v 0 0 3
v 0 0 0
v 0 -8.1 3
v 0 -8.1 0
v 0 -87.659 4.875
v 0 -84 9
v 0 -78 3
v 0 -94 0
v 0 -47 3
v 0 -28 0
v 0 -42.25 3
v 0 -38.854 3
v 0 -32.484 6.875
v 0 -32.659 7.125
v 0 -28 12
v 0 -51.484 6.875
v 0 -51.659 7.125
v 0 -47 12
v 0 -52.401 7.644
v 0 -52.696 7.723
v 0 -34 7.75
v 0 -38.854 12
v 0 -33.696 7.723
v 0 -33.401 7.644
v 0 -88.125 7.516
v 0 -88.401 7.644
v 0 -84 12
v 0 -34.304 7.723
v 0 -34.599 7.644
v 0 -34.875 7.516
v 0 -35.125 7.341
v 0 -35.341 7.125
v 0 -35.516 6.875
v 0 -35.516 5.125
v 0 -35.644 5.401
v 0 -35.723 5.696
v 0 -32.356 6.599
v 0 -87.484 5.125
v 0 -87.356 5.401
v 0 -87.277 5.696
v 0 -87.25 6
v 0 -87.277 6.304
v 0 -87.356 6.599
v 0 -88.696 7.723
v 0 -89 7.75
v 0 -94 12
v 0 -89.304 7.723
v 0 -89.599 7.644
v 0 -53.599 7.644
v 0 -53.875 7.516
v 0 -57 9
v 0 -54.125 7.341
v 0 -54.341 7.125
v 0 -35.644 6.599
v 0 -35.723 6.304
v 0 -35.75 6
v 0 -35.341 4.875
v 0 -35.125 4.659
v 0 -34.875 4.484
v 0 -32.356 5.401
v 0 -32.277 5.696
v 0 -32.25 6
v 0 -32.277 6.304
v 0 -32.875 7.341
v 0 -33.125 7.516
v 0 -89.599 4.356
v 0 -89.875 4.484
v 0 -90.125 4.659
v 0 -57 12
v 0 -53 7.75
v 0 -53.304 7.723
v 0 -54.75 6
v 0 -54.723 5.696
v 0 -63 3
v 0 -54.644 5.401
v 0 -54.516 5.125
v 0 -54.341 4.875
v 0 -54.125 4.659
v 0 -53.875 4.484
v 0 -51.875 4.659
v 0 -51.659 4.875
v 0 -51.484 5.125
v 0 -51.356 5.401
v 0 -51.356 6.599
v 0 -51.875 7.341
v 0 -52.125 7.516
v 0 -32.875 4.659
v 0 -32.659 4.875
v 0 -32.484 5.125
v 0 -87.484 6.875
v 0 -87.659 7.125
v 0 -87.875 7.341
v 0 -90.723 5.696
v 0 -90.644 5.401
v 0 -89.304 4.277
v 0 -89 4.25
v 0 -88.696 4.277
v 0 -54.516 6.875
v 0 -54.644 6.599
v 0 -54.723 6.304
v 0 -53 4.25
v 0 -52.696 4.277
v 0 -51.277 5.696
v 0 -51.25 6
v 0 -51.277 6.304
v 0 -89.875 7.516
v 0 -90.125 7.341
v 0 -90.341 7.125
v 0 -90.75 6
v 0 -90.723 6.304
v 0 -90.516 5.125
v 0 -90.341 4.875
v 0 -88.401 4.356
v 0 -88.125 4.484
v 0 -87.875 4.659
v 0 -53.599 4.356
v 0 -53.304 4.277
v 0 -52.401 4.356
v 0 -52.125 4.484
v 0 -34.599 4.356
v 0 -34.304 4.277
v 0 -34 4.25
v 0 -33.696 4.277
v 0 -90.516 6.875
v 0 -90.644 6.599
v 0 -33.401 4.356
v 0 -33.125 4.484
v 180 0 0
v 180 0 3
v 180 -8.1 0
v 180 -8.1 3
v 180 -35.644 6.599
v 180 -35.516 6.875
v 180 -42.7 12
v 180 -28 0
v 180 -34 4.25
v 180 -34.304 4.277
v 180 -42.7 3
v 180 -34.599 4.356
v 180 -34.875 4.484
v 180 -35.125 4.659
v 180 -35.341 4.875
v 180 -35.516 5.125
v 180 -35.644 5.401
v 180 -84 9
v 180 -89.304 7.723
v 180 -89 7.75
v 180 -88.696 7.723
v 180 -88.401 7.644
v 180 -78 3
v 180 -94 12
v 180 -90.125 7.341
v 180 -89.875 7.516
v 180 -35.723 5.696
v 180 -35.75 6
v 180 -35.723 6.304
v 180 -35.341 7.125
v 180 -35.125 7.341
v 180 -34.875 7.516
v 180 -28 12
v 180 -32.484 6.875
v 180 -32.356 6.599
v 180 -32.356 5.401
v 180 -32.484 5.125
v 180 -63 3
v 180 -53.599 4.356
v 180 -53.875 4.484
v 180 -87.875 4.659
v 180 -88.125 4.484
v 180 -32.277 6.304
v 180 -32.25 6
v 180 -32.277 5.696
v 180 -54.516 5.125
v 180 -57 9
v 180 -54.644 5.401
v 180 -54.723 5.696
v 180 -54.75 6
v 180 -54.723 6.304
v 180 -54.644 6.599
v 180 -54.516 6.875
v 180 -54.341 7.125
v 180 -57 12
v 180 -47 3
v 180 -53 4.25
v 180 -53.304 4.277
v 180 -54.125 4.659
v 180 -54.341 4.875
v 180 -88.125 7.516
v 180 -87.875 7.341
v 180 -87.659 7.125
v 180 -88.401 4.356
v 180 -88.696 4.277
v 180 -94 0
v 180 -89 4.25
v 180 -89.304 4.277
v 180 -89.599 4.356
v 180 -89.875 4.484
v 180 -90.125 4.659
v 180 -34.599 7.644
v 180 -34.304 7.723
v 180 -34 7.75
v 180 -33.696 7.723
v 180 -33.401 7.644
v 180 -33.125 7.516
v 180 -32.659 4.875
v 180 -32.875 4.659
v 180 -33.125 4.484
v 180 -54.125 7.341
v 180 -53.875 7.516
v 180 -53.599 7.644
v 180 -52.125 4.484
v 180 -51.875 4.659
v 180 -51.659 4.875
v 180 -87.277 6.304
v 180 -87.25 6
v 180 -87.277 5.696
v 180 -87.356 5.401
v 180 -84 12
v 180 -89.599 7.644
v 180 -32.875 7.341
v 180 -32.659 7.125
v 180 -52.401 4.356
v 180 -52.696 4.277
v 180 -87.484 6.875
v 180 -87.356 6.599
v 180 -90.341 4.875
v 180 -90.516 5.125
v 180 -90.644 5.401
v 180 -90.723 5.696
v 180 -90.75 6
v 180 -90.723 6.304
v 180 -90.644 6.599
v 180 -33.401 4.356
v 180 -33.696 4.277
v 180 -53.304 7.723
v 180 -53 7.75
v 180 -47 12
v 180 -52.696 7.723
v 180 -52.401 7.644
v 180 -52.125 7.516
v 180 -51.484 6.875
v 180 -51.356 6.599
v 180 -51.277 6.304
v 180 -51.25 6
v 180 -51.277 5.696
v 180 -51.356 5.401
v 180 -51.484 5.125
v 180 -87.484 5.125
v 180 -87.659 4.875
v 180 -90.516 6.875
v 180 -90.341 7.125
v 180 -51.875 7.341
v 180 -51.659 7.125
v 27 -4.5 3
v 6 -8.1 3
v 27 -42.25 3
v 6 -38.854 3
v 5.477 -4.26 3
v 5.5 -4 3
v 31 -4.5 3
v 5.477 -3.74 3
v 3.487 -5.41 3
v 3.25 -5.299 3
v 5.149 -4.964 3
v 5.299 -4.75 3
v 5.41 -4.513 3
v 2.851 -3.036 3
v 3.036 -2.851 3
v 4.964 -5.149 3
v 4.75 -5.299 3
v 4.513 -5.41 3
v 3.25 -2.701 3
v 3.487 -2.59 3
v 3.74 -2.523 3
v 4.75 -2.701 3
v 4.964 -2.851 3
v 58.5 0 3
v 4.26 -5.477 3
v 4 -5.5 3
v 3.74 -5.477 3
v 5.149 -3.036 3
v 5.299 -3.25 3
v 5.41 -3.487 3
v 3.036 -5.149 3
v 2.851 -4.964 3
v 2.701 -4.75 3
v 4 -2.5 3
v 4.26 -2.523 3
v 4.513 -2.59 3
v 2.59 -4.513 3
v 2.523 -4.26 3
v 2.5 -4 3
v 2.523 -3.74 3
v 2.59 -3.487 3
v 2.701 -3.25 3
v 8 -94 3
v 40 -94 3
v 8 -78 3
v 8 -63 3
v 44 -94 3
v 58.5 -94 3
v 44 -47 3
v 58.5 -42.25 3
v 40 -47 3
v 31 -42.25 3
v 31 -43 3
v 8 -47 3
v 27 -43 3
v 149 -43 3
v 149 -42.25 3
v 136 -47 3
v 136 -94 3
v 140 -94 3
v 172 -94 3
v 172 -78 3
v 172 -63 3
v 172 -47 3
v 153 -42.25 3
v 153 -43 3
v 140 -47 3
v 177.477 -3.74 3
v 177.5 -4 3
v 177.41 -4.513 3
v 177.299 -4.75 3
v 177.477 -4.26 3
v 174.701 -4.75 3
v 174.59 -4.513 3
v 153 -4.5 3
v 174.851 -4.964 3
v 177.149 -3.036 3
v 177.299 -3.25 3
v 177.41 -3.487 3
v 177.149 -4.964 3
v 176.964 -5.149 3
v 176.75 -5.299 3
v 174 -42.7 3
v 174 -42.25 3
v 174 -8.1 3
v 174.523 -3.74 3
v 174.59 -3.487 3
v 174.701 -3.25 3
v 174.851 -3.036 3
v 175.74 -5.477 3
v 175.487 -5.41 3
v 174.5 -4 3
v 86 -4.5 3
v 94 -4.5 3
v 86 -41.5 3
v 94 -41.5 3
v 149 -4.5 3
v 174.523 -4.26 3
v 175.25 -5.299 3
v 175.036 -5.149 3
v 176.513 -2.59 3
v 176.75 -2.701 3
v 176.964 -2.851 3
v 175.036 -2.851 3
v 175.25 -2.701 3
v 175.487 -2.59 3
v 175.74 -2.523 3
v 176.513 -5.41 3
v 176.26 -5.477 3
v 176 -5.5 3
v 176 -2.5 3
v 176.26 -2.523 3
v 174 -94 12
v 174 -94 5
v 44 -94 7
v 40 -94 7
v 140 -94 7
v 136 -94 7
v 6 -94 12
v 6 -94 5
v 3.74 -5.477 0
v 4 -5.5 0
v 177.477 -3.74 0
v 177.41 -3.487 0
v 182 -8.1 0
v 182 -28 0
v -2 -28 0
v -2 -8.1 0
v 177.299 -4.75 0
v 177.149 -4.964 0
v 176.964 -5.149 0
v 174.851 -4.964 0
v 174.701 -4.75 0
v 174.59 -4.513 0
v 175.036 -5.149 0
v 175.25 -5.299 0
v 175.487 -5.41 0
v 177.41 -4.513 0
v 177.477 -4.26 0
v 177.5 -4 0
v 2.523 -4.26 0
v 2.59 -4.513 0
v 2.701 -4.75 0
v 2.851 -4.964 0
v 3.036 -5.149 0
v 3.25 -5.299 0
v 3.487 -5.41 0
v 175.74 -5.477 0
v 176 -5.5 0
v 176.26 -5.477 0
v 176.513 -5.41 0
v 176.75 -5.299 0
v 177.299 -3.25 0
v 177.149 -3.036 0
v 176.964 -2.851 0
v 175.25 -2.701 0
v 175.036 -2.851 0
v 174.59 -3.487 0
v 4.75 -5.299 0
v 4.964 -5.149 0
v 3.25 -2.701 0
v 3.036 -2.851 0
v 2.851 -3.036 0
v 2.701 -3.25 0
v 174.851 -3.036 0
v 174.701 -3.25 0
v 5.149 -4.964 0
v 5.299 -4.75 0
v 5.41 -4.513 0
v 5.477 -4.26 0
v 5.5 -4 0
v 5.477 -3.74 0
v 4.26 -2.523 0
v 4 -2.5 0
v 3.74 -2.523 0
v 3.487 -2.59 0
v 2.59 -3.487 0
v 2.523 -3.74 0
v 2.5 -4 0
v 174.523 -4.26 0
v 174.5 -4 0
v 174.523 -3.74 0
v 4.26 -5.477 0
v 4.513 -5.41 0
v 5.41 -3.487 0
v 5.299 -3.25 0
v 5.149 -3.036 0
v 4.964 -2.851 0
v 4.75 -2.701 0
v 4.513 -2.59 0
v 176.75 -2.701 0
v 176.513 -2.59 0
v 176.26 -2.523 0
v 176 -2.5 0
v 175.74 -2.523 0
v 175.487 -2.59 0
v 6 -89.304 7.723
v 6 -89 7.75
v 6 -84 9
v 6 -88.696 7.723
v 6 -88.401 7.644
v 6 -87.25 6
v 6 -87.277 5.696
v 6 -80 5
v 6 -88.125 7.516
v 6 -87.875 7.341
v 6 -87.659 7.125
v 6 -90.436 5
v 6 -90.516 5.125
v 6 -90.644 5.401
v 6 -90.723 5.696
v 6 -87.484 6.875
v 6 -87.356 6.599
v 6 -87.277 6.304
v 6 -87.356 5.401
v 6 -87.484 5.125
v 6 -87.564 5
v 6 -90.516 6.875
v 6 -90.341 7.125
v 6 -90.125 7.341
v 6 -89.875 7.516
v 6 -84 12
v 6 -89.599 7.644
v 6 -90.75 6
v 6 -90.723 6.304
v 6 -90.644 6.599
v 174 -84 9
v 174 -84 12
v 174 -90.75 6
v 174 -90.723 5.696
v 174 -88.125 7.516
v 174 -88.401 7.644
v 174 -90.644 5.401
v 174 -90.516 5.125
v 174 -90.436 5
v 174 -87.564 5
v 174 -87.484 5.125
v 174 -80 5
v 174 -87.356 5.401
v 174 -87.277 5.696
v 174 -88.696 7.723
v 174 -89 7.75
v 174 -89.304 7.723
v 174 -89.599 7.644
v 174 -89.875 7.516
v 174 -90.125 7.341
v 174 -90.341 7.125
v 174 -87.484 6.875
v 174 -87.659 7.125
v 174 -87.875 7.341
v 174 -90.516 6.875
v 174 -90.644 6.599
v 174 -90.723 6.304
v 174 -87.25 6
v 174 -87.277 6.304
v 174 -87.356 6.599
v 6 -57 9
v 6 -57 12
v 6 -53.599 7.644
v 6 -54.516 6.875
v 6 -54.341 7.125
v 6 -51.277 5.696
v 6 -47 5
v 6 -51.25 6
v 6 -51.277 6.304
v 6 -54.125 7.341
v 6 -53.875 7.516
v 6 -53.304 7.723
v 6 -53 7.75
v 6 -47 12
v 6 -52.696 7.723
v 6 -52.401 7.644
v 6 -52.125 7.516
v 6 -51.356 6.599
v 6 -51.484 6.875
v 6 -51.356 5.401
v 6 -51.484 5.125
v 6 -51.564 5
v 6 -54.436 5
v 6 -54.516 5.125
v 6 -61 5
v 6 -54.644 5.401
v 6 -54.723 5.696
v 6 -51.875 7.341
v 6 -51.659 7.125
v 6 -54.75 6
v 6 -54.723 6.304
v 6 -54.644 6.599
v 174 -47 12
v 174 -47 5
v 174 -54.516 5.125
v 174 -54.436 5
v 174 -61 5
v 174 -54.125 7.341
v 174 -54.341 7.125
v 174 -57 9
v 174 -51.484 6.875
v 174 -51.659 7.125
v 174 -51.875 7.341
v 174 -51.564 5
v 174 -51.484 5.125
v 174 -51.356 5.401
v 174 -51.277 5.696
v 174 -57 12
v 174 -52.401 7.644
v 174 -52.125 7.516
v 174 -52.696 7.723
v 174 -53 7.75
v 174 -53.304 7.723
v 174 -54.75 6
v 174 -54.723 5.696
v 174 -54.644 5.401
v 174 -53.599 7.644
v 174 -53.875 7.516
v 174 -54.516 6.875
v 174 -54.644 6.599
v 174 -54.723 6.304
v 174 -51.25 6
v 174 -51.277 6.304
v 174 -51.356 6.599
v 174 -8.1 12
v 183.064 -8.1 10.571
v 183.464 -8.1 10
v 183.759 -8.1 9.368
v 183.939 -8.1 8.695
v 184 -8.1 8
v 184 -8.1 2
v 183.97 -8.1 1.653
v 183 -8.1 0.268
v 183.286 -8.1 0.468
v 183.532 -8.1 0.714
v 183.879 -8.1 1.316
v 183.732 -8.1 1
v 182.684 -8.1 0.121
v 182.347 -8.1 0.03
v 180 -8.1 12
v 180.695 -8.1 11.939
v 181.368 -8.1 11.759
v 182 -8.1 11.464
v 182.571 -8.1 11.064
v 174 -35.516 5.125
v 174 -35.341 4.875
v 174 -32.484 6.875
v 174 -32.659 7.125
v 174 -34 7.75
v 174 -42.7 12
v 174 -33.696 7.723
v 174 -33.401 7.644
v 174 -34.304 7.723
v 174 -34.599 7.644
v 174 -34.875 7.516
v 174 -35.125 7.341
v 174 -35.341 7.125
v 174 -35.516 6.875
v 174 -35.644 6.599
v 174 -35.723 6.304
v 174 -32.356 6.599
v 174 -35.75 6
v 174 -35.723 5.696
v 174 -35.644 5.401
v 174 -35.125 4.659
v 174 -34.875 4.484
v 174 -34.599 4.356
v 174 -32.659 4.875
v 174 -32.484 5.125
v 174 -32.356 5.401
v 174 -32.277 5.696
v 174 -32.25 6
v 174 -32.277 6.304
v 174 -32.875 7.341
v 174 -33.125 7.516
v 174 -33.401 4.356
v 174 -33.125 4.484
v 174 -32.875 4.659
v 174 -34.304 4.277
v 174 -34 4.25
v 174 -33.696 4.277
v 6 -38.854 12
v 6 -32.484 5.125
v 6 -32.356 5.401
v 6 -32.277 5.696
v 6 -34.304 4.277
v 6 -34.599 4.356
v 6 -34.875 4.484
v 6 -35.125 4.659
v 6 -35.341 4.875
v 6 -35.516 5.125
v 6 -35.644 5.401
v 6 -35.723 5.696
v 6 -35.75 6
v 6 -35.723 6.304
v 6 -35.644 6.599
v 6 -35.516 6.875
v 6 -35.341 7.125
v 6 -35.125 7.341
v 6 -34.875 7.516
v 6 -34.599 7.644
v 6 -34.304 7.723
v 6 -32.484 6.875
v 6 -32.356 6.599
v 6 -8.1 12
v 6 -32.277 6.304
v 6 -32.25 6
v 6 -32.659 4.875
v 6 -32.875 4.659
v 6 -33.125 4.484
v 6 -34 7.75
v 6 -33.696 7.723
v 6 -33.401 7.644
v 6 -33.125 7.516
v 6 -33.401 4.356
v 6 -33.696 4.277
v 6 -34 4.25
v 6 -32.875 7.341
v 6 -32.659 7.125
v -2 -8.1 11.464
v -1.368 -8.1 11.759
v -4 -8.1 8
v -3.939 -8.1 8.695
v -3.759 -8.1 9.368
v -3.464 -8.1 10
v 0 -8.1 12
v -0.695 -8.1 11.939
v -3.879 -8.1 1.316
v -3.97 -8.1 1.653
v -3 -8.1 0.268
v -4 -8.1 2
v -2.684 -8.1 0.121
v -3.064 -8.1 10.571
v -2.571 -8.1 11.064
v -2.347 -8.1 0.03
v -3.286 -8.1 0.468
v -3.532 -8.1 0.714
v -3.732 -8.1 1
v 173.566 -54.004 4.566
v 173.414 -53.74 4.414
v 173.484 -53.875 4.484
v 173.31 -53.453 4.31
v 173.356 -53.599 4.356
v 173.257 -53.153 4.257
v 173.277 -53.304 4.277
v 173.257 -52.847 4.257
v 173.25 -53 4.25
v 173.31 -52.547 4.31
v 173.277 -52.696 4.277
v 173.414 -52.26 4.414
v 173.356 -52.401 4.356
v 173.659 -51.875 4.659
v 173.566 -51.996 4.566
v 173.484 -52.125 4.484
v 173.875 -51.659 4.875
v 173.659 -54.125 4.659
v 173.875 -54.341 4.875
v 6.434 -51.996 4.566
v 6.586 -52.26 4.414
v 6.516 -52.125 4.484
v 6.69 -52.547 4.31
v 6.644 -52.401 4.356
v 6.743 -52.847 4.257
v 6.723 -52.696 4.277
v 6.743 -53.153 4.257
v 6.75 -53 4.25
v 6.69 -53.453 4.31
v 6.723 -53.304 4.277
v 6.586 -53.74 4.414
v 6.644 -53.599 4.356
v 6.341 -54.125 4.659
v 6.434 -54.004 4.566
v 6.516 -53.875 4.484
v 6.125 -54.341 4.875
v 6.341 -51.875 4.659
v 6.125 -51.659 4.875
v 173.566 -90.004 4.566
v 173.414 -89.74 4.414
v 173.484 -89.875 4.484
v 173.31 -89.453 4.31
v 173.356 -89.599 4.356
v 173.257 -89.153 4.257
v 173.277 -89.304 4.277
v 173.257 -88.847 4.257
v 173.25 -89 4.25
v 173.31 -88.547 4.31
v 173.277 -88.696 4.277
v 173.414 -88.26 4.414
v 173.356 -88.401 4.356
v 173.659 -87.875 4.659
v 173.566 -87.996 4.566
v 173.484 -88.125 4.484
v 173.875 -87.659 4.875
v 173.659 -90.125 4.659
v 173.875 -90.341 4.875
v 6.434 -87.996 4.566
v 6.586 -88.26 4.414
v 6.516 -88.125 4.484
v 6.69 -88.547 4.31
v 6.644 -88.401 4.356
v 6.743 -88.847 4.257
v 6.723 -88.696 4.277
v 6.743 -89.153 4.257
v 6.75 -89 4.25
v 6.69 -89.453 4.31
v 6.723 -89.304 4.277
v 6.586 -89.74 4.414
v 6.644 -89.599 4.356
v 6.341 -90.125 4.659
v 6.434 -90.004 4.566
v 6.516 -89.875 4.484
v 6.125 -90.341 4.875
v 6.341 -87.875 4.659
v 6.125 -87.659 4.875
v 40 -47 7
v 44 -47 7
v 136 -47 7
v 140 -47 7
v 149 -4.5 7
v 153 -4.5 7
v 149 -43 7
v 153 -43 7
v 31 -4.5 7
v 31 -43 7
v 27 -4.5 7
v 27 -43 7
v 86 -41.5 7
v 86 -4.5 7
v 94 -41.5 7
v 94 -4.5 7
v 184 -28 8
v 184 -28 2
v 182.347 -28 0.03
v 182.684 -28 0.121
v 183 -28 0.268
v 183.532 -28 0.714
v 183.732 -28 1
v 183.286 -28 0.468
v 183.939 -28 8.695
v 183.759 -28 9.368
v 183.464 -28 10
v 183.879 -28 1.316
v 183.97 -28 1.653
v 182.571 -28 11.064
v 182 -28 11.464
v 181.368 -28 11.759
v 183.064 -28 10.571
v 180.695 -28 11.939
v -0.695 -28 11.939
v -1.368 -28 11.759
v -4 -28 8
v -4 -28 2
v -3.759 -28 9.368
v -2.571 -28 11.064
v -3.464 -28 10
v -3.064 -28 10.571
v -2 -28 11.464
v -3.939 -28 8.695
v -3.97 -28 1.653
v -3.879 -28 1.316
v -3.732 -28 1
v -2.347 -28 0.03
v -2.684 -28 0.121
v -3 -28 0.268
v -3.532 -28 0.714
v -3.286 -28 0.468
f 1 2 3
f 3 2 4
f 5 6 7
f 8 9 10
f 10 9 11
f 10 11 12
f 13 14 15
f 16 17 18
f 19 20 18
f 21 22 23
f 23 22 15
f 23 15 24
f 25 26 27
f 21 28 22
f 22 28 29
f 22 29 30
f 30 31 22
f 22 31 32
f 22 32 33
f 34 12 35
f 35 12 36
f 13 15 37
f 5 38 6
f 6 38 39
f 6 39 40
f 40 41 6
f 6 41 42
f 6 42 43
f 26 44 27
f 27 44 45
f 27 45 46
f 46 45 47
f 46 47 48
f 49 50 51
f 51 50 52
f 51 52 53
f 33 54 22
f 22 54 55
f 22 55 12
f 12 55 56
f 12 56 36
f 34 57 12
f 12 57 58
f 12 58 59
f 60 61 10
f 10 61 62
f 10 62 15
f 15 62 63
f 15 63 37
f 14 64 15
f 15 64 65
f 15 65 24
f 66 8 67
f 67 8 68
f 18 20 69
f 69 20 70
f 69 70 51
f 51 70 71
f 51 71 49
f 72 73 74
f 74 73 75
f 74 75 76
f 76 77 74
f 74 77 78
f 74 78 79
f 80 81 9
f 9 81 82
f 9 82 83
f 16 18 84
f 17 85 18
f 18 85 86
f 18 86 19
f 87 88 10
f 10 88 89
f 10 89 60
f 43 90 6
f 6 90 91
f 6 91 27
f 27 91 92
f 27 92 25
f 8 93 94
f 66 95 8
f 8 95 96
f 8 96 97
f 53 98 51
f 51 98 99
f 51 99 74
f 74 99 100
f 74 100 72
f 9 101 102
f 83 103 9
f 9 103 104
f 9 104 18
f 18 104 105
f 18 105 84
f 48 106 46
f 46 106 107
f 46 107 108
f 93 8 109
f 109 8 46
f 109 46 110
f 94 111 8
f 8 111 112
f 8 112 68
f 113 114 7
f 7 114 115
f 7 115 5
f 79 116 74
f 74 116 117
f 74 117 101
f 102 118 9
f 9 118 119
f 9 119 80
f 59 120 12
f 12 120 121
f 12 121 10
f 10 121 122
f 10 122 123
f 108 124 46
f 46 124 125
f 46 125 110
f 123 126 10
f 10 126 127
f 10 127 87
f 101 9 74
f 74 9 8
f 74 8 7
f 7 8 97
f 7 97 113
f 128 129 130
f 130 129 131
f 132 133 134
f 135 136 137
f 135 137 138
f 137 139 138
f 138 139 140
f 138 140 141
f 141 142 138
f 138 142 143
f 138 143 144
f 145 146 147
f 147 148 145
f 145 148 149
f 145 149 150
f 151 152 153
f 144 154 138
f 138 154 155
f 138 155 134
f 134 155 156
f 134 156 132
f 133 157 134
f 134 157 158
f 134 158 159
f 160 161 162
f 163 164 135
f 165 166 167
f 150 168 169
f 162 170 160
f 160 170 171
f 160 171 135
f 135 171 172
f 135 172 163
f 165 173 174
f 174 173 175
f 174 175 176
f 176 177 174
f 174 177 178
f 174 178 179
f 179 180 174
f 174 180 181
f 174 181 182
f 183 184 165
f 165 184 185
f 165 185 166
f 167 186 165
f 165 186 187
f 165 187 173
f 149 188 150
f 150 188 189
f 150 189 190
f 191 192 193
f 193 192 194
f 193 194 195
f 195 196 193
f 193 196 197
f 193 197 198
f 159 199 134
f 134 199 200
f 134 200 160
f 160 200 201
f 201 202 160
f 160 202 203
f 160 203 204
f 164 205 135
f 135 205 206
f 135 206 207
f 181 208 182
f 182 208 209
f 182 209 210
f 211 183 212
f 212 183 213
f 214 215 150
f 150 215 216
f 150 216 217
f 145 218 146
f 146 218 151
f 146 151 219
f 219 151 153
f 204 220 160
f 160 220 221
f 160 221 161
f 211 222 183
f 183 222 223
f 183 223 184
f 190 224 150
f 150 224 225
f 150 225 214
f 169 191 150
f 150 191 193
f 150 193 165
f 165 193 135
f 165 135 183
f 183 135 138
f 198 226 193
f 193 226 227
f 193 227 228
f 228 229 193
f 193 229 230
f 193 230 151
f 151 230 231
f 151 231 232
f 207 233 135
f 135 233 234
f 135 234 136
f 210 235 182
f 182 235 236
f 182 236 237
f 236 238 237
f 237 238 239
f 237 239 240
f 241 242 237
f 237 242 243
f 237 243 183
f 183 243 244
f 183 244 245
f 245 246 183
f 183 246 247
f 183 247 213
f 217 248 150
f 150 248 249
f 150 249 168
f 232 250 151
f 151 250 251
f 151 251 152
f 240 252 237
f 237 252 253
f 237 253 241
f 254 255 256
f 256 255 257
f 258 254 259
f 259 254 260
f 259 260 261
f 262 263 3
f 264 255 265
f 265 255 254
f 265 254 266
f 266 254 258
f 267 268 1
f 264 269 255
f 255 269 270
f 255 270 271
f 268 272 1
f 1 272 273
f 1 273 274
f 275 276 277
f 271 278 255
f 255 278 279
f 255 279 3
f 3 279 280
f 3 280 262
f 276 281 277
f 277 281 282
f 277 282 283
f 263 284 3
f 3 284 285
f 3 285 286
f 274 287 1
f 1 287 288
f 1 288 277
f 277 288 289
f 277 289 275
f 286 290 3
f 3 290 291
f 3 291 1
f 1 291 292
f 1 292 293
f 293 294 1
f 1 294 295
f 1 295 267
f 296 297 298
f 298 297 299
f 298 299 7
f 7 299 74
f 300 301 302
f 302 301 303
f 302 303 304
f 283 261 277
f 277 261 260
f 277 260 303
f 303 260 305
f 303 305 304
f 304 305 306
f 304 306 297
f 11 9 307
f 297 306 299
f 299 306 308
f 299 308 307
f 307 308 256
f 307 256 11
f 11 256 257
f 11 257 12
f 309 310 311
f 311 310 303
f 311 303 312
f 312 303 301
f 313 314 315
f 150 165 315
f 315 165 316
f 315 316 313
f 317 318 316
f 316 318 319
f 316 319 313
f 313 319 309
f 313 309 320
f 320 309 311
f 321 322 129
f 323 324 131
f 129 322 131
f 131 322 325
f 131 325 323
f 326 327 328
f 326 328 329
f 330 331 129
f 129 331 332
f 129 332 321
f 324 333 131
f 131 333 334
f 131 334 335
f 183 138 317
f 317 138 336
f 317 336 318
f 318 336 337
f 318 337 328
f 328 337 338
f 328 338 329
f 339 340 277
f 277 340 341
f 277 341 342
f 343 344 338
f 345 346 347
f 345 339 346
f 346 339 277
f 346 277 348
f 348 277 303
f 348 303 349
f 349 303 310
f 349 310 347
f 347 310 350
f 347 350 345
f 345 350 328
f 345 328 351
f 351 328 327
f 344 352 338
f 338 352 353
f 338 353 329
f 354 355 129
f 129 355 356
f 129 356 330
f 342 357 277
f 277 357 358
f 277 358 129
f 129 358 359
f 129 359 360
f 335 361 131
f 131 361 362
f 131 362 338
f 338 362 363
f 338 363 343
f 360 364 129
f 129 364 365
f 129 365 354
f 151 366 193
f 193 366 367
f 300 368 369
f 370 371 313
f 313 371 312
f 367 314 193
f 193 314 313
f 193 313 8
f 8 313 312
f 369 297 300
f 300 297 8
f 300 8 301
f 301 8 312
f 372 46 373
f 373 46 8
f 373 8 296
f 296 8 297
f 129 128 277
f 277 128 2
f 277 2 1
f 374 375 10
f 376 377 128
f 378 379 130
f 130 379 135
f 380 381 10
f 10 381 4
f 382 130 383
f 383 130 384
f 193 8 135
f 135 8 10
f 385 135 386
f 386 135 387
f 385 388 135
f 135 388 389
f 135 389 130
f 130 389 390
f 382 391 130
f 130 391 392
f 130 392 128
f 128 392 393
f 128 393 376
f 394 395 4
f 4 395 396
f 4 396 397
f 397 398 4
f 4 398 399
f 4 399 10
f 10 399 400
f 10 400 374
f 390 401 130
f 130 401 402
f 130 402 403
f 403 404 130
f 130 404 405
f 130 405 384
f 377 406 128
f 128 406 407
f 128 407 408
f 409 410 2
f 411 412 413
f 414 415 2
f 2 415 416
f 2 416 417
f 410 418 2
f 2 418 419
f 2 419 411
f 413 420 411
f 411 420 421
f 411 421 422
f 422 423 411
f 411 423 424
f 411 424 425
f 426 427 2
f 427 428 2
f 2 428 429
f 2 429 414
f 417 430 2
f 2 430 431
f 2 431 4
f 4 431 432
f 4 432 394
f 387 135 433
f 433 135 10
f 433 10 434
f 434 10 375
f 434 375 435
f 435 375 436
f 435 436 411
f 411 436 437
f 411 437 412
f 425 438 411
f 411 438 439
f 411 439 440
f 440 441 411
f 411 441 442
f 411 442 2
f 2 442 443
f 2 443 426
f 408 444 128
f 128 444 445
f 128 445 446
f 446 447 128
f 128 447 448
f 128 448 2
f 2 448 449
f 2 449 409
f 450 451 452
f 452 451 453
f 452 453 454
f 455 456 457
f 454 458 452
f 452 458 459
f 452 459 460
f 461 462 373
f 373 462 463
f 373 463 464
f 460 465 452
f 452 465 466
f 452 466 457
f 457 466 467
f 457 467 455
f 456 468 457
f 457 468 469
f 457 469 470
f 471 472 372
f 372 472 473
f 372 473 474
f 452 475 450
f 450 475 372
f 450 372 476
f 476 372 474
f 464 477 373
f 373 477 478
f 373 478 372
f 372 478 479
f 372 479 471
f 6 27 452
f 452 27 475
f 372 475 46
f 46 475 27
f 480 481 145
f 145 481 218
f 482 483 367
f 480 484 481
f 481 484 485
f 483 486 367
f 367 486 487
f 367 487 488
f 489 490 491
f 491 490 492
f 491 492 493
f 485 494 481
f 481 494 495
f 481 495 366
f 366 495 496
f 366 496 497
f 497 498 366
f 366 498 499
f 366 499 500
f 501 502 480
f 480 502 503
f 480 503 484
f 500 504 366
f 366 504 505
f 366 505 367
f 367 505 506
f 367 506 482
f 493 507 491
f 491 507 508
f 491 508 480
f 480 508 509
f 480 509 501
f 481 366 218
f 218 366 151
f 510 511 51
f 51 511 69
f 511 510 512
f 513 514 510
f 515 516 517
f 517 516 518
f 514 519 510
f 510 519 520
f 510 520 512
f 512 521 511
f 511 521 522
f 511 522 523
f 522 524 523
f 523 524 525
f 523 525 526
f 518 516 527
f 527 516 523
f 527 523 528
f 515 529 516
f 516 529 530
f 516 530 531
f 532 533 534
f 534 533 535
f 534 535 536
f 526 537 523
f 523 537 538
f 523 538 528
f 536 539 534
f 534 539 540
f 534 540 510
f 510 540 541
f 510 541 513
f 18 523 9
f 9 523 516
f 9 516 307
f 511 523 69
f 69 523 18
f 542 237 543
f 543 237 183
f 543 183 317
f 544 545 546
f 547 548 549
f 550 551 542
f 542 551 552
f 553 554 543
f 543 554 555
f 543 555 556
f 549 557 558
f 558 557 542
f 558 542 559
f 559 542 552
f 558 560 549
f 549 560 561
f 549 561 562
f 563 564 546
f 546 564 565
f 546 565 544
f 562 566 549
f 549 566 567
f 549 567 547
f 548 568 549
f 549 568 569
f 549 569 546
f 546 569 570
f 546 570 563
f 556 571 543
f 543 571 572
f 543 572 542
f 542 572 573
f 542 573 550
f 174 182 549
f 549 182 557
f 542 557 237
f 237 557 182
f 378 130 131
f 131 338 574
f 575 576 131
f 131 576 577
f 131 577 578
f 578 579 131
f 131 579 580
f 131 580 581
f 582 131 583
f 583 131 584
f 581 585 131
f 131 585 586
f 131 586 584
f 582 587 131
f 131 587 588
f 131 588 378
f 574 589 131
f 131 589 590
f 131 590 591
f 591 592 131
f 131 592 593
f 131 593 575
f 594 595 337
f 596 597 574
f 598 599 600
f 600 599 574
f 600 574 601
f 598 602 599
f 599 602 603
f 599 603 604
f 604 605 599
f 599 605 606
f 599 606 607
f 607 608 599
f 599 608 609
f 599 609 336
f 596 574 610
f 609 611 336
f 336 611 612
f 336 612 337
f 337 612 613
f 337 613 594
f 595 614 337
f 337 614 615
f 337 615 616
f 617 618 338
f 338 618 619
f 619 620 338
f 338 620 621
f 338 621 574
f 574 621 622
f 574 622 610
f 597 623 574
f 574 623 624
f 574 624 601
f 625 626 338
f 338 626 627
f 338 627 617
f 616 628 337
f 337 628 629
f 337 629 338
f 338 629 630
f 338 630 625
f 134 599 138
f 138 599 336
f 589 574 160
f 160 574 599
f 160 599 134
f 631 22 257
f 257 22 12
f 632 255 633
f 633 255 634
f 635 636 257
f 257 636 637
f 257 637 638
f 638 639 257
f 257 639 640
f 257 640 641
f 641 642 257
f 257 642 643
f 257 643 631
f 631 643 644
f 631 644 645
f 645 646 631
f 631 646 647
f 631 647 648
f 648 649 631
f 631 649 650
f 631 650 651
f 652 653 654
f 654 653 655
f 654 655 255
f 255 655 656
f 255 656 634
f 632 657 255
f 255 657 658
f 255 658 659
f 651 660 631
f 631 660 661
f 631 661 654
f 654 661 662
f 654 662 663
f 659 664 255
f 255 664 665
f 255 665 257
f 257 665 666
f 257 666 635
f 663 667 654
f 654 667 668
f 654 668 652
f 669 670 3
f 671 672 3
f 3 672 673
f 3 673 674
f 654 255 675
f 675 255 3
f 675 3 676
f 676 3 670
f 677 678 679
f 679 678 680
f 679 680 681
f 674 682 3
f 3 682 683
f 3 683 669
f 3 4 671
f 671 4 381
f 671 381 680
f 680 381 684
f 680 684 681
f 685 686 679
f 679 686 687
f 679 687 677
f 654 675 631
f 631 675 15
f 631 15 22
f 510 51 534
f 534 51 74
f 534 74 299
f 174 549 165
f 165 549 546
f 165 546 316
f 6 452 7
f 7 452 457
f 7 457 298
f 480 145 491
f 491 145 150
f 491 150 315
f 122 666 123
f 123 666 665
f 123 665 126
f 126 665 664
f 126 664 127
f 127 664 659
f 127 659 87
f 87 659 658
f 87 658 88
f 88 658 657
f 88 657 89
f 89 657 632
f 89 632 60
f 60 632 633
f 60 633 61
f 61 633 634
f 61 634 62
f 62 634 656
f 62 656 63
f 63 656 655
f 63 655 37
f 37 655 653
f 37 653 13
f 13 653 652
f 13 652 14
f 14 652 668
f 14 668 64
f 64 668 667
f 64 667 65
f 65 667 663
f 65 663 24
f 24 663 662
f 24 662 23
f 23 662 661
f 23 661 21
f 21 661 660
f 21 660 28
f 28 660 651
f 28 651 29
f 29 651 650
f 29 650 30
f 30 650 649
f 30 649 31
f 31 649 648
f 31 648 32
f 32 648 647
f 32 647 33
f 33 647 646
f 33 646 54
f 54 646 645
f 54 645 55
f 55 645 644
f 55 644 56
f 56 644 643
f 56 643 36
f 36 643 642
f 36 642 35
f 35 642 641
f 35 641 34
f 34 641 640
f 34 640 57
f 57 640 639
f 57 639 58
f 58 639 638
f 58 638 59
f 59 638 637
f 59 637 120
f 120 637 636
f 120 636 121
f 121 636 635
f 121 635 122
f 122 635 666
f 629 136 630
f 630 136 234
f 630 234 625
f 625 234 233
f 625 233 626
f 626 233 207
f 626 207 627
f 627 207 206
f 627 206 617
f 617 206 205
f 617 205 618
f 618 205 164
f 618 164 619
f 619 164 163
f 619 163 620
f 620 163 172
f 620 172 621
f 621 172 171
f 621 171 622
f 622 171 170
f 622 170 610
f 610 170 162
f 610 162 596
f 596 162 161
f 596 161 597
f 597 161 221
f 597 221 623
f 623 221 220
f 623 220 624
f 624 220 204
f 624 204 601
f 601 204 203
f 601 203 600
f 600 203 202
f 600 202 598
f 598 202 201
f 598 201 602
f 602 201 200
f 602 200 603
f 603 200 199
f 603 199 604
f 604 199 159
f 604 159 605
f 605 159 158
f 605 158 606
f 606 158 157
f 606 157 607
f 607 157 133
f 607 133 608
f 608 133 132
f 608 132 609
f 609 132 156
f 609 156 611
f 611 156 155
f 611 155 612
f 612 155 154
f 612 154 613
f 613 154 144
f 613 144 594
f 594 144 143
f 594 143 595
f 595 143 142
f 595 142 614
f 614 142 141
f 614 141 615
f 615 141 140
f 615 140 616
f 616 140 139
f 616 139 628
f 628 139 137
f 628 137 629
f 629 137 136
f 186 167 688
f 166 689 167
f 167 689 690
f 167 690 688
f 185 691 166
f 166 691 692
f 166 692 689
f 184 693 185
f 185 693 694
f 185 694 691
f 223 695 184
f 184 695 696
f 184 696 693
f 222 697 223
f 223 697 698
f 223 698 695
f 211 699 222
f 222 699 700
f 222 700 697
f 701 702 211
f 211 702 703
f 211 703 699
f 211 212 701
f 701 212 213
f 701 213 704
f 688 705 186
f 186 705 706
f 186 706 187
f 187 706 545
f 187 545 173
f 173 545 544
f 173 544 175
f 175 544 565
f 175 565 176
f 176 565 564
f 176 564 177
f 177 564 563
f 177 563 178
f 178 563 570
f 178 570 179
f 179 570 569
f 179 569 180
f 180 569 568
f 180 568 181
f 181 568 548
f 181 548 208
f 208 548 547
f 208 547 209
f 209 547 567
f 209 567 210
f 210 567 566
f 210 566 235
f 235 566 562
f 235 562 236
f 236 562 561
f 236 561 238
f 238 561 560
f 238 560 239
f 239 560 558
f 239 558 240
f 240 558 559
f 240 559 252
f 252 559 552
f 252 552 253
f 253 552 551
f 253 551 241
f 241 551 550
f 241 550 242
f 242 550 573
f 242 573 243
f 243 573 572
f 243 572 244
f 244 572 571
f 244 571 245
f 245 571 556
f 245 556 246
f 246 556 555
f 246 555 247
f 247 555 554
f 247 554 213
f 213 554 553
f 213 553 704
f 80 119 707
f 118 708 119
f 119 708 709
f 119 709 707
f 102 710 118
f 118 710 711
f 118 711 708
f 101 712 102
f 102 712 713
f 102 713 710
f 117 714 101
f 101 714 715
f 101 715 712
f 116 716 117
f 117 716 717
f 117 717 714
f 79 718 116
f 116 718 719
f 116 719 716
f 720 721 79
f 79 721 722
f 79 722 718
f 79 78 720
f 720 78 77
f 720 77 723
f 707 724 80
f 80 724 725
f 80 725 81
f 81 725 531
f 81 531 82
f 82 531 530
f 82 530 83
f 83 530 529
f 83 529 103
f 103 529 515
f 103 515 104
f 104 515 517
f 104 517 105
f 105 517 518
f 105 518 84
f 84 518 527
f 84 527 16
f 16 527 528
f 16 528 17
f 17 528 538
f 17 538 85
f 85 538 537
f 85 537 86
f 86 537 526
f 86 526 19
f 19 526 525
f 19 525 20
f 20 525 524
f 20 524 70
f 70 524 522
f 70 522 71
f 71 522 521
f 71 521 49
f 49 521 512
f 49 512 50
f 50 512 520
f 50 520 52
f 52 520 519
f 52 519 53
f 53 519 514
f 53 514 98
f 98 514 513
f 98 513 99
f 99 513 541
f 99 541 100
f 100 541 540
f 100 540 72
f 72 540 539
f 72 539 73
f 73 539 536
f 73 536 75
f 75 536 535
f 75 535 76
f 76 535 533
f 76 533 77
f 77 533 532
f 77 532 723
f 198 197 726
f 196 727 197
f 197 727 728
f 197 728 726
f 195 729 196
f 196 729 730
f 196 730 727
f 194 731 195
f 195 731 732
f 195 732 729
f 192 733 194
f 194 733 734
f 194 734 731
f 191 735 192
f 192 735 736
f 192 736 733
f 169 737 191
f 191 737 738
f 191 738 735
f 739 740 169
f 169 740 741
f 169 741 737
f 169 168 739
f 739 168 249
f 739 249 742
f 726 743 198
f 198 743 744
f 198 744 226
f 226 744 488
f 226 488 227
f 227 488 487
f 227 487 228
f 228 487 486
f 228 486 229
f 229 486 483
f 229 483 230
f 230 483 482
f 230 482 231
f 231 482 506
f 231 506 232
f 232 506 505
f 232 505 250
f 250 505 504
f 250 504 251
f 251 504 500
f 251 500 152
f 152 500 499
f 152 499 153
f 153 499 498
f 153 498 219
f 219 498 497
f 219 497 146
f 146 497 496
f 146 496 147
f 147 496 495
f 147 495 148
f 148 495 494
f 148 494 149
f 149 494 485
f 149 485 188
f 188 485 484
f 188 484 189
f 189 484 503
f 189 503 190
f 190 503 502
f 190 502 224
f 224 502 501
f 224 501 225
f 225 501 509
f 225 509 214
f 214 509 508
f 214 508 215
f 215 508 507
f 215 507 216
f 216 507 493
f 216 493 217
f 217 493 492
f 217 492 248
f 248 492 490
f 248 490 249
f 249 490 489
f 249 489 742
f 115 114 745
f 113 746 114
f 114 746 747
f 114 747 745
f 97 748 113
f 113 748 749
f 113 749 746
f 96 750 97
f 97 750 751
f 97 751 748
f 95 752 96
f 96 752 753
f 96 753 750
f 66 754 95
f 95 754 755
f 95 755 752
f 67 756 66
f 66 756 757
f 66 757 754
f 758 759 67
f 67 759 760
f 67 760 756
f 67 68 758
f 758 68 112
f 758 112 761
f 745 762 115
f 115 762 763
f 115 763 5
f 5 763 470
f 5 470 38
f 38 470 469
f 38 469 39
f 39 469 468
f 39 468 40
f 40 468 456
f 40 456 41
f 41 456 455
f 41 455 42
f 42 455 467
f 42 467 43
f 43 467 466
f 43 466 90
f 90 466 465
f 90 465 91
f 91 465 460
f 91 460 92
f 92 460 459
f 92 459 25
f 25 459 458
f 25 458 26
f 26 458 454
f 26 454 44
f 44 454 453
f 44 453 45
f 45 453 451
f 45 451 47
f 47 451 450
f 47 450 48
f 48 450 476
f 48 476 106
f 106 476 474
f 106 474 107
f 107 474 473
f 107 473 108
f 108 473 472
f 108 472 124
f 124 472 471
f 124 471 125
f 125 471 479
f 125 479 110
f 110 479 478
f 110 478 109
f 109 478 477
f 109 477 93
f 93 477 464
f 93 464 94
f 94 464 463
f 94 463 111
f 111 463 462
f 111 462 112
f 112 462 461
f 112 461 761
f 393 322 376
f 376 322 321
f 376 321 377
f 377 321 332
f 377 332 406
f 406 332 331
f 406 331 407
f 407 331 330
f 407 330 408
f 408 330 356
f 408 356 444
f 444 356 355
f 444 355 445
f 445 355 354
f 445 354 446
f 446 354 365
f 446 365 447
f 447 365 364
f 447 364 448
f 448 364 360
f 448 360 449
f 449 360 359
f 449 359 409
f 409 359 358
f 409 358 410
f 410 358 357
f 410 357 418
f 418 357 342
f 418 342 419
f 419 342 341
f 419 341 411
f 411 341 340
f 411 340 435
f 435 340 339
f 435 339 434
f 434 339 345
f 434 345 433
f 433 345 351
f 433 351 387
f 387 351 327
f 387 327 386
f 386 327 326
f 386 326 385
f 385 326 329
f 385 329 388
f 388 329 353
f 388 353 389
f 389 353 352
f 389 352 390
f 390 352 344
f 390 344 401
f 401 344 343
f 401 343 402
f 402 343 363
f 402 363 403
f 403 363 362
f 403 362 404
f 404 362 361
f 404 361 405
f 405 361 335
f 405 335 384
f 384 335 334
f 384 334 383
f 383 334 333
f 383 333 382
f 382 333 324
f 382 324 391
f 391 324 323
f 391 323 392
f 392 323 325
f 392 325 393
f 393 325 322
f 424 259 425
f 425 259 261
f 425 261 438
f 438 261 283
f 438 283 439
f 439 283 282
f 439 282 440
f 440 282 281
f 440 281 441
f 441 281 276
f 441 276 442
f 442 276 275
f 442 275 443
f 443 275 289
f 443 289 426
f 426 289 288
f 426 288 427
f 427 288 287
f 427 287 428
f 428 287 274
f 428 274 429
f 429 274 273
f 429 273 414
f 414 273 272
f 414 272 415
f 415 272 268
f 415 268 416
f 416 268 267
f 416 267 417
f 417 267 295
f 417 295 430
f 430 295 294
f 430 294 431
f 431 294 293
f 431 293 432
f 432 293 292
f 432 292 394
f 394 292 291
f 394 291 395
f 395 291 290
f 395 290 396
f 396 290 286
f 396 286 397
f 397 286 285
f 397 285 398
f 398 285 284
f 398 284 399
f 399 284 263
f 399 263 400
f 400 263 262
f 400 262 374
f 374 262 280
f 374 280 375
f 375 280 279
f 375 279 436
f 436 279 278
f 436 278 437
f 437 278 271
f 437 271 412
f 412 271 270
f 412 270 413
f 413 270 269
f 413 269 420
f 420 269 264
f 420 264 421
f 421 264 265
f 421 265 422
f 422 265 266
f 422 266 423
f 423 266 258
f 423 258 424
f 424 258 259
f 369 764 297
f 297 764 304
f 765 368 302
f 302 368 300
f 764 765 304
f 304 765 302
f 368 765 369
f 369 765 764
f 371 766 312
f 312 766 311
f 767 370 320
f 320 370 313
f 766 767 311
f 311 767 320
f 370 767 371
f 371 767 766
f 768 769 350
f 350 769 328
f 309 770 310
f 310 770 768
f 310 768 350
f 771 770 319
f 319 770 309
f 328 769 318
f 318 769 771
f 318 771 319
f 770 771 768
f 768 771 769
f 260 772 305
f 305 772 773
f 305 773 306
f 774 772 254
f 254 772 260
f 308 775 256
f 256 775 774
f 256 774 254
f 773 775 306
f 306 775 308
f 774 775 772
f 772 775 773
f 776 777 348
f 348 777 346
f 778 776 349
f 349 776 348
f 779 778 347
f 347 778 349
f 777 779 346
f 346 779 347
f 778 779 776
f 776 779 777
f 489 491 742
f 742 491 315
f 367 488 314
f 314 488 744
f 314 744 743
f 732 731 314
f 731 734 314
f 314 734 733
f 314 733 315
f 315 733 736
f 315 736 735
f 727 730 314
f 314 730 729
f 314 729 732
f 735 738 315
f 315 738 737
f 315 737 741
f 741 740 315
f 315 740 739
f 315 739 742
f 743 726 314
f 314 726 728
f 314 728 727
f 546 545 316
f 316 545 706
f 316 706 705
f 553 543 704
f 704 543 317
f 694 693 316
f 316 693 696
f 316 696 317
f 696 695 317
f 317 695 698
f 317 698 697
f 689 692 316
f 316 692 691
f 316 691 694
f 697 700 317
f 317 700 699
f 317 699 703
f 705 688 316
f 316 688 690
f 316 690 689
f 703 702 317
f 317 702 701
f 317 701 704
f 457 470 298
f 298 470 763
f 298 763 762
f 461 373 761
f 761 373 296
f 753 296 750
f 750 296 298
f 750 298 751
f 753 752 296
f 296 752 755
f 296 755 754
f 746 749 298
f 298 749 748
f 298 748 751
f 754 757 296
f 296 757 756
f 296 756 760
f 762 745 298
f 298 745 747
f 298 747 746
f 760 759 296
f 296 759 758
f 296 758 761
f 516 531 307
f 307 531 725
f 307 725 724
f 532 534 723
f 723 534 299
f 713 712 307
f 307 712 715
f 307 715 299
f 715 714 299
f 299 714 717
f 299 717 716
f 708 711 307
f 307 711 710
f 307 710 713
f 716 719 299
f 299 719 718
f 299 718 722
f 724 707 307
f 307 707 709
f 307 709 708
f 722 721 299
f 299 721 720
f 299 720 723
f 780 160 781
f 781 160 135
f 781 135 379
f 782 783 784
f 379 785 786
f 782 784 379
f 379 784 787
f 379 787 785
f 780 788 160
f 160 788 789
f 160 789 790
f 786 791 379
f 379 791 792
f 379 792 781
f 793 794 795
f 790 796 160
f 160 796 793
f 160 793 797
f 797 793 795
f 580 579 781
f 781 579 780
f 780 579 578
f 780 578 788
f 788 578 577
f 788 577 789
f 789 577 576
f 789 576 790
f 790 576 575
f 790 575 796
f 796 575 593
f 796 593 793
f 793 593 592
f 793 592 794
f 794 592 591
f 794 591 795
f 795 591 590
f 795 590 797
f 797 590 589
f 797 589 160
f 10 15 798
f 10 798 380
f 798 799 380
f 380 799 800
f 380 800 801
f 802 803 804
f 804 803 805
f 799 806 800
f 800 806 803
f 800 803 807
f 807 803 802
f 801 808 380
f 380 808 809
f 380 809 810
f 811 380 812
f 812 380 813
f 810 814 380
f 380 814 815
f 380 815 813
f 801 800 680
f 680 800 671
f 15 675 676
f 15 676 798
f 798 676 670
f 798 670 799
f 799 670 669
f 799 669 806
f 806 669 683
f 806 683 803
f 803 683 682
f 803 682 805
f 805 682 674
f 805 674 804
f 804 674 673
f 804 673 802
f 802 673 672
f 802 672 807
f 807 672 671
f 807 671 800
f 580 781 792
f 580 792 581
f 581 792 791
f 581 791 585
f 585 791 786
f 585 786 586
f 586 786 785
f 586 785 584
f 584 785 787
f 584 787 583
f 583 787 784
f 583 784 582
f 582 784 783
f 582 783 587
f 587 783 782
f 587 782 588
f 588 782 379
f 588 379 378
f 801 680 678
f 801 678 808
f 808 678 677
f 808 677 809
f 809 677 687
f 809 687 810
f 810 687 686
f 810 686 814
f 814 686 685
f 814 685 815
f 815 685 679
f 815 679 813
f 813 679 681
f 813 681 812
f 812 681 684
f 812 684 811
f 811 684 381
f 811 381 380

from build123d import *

# Parameters (mm, degrees)
SKETCH_1_W          = 180
SKETCH_1_H          = 94
EXTRUDE_1_DEPTH     = 3
SKETCH_2_W          = 6
SKETCH_2_H          = 10
SKETCH_2_H_2        = 34.6
SKETCH_2_H_3        = 30.754035876
EXTRUDE_2_DEPTH     = 9
CHAMFER_2_SIZE      = 6
CHAMFER_1_SIZE      = 6
SKETCH_3_R          = 1.75
CUT_EXTRUDE_1_DEPTH = 204.420746238
SKETCH_4_R          = 1.5
CUT_EXTRUDE_2_DEPTH = 204.265835791
SKETCH_5_W          = 4
SKETCH_5_H          = 47
SKETCH_5_H_2        = 38.5
SKETCH_5_W_2        = 8
SKETCH_5_H_3        = 37
EXTRUDE_3_DEPTH     = 4
CHAMFER_3_SIZE      = 2
SKETCH_6_W          = 12
SKETCH_6_H          = 19.9
EXTRUDE_4_DEPTH     = 4
FILLET_1_R          = 4
SKETCH_7_W          = 12
SKETCH_7_H          = 19.9
EXTRUDE_5_DEPTH     = 4
FILLET_2_R          = 4
FILLET_3_R          = 2


with BuildPart() as part:
    # Эскиз1 → Бобышка-Вытянуть1 (new body)
    with BuildSketch(Plane.XY):
        with Locations((90, -47)):
            Rectangle(SKETCH_1_W, SKETCH_1_H)
    extrude(amount=EXTRUDE_1_DEPTH)

    # Эскиз2 → Бобышка-Вытянуть2 (add)
    with BuildSketch(Plane.XY.offset(3)):
        with Locations((3, -89)):
            Rectangle(SKETCH_2_W, SKETCH_2_H)
        with Locations((177, -89)):
            Rectangle(SKETCH_2_W, SKETCH_2_H)
        with Locations((3, -52)):
            Rectangle(SKETCH_2_W, SKETCH_2_H)
        with Locations((177, -52)):
            Rectangle(SKETCH_2_W, SKETCH_2_H)
        with Locations((177, -25.4)):
            Rectangle(SKETCH_2_W, SKETCH_2_H_2)
        with Locations((3, -23.477017938)):
            Rectangle(SKETCH_2_W, SKETCH_2_H_3)
    extrude(amount=EXTRUDE_2_DEPTH)

    # Фаска2
    chamfer_2_edges = [part.edges().sort_by_distance(p)[0] for p in [
        (3, -57, 3),
        (177, -57, 3),
    ]]
    chamfer(chamfer_2_edges, length=CHAMFER_2_SIZE)

    # Фаска1
    chamfer_1_edges = [part.edges().sort_by_distance(p)[0] for p in [
        (3, -84, 3),
        (177, -84, 3),
    ]]
    chamfer(chamfer_1_edges, length=CHAMFER_1_SIZE)

    # Эскиз3 → Вырез-Вытянуть1 (cut, through all)
    with BuildSketch(Plane(origin=(180, 0, 0), x_dir=(0, 0, -1), z_dir=(1, 0, 0))):
        with Locations((-6, -89)):
            Circle(SKETCH_3_R)
        with Locations((-6, -53)):
            Circle(SKETCH_3_R)
        with Locations((-6, -34)):
            Circle(SKETCH_3_R)
    extrude(amount=-CUT_EXTRUDE_1_DEPTH, mode=Mode.SUBTRACT)

    # Эскиз4 → Вырез-Вытянуть2 (cut, through all)
    with BuildSketch(Plane.XY.offset(3)):
        with Locations((4, -4)):
            Circle(SKETCH_4_R)
        with Locations((176, -4)):
            Circle(SKETCH_4_R)
    extrude(amount=-CUT_EXTRUDE_2_DEPTH, mode=Mode.SUBTRACT)

    # Эскиз5 → Бобышка-Вытянуть3 (add)
    with BuildSketch(Plane.XY.offset(3)):
        with Locations((42, -70.5)):
            Rectangle(SKETCH_5_W, SKETCH_5_H)
        with Locations((138, -70.5)):
            Rectangle(SKETCH_5_W, SKETCH_5_H)
        with Locations((29, -23.75)):
            Rectangle(SKETCH_5_W, SKETCH_5_H_2)
        with Locations((151, -23.75)):
            Rectangle(SKETCH_5_W, SKETCH_5_H_2)
        with Locations((90, -23)):
            Rectangle(SKETCH_5_W_2, SKETCH_5_H_3)
    extrude(amount=EXTRUDE_3_DEPTH)

    # Фаска3
    # the kernel refuses this chamfer: 2 mm, written as the material it adds along each edge
    with BuildSketch(Plane(origin=(6, -72.856634024, 3), x_dir=(0.9996219169112968, 0, -0.02749587661058627), z_dir=(0, -1, 0))) as chamfer_3_piece_1_section:
        Polygon((CHAMFER_3_SIZE * 0.999621916911, CHAMFER_3_SIZE * 0.0274958766106), (-CHAMFER_3_SIZE * 0.0274958766106, CHAMFER_3_SIZE * 0.999621916911), (0, 0), align=None)
    chamfer_3_piece_1 = extrude(amount=21.143365976, mode=Mode.PRIVATE)
    chamfer_3_piece_1 = split(chamfer_3_piece_1, bisect_by=Plane(origin=(6.680922071, -82.46162584, 7.46162584), z_dir=(0, -0.7071067811865476, -0.7071067811865476)), keep=Keep.TOP, mode=Mode.PRIVATE)
    chamfer_3_piece_1 = chamfer_3_piece_1 - Plane(origin=(6.680922071, -89, 6), x_dir=(0, 0, -1), z_dir=(1, 0, 0)) * Cylinder(1.75, 51, mode=Mode.PRIVATE)
    add(chamfer_3_piece_1)
    with BuildSketch(Plane(origin=(174, -94, 3), x_dir=(-0.9996219169112968, 0, -0.02749587661058639), z_dir=(0, 1, 0))) as chamfer_3_piece_2_section:
        Polygon((CHAMFER_3_SIZE * 0.999621916911, CHAMFER_3_SIZE * 0.0274958766106), (-CHAMFER_3_SIZE * 0.0274958766106, CHAMFER_3_SIZE * 0.999621916911), (0, 0), align=None)
    chamfer_3_piece_2 = extrude(amount=21.143365976, mode=Mode.PRIVATE)
    chamfer_3_piece_2 = split(chamfer_3_piece_2, bisect_by=Plane(origin=(173.319077929, -82.46162584, 7.46162584), z_dir=(0, -0.7071067811865476, -0.7071067811865476)), keep=Keep.TOP, mode=Mode.PRIVATE)
    chamfer_3_piece_2 = chamfer_3_piece_2 - Plane(origin=(173.319077929, -89, 6), x_dir=(0, 0, -1), z_dir=(1, 0, 0)) * Cylinder(1.75, 51, mode=Mode.PRIVATE)
    add(chamfer_3_piece_2)
    with BuildSketch(Plane(origin=(6, -47, 3), x_dir=(0.9996219169112968, 0, -0.02749587661058627), z_dir=(0, -1, 0))) as chamfer_3_piece_3_section:
        Polygon((CHAMFER_3_SIZE * 0.999621916911, CHAMFER_3_SIZE * 0.0274958766106), (-CHAMFER_3_SIZE * 0.0274958766106, CHAMFER_3_SIZE * 0.999621916911), (0, 0), align=None)
    chamfer_3_piece_3 = extrude(amount=21.143365976, mode=Mode.PRIVATE)
    chamfer_3_piece_3 = split(chamfer_3_piece_3, bisect_by=Plane(origin=(6.680922071, -58.530709151, 7.469290849), z_dir=(0, 0.7071067811865476, -0.7071067811865476)), keep=Keep.TOP, mode=Mode.PRIVATE)
    chamfer_3_piece_3 = chamfer_3_piece_3 - Plane(origin=(6.680922071, -53, 6), x_dir=(0, 0, -1), z_dir=(1, 0, 0)) * Cylinder(1.75, 51, mode=Mode.PRIVATE)
    add(chamfer_3_piece_3)
    with BuildSketch(Plane(origin=(174, -68.143365976, 3), x_dir=(-0.9996219169112968, 0, -0.02749587661058639), z_dir=(0, 1, 0))) as chamfer_3_piece_4_section:
        Polygon((CHAMFER_3_SIZE * 0.999621916911, CHAMFER_3_SIZE * 0.0274958766106), (-CHAMFER_3_SIZE * 0.0274958766106, CHAMFER_3_SIZE * 0.999621916911), (0, 0), align=None)
    chamfer_3_piece_4 = extrude(amount=21.143365976, mode=Mode.PRIVATE)
    chamfer_3_piece_4 = split(chamfer_3_piece_4, bisect_by=Plane(origin=(173.319077929, -58.530709151, 7.469290849), z_dir=(0, 0.7071067811865476, -0.7071067811865476)), keep=Keep.TOP, mode=Mode.PRIVATE)
    chamfer_3_piece_4 = chamfer_3_piece_4 - Plane(origin=(173.319077929, -53, 6), x_dir=(0, 0, -1), z_dir=(1, 0, 0)) * Cylinder(1.75, 51, mode=Mode.PRIVATE)
    add(chamfer_3_piece_4)

    # Эскиз6 → Бобышка-Вытянуть4 (add)
    with BuildSketch(Plane(origin=(180, 0, 0), x_dir=(0, 0, -1), z_dir=(1, 0, 0))):
        with Locations((-6, -18.05)):
            Rectangle(SKETCH_6_W, SKETCH_6_H)
    extrude(amount=EXTRUDE_4_DEPTH)

    # Скругление1
    fillet_1_edges = [part.edges().sort_by_distance(p)[0] for p in [
        (184, -18.05, 12),
    ]]
    fillet(fillet_1_edges, radius=FILLET_1_R)

    # Эскиз7 → Бобышка-Вытянуть5 (add)
    with BuildSketch(Plane.ZY):
        with Locations((6, -18.05)):
            Rectangle(SKETCH_7_W, SKETCH_7_H)
    extrude(amount=EXTRUDE_5_DEPTH)

    # Скругление2
    fillet_2_edges = [part.edges().sort_by_distance(p)[0] for p in [
        (-4, -18.05, 12),
    ]]
    fillet(fillet_2_edges, radius=FILLET_2_R)

    # Скругление3
    fillet_3_edges = [part.edges().sort_by_distance(p)[0] for p in [
        (184, -18.05, 0),
        (-4, -18.05, 0),
    ]]
    fillet(fillet_3_edges, radius=FILLET_3_R)


solid = part.part
